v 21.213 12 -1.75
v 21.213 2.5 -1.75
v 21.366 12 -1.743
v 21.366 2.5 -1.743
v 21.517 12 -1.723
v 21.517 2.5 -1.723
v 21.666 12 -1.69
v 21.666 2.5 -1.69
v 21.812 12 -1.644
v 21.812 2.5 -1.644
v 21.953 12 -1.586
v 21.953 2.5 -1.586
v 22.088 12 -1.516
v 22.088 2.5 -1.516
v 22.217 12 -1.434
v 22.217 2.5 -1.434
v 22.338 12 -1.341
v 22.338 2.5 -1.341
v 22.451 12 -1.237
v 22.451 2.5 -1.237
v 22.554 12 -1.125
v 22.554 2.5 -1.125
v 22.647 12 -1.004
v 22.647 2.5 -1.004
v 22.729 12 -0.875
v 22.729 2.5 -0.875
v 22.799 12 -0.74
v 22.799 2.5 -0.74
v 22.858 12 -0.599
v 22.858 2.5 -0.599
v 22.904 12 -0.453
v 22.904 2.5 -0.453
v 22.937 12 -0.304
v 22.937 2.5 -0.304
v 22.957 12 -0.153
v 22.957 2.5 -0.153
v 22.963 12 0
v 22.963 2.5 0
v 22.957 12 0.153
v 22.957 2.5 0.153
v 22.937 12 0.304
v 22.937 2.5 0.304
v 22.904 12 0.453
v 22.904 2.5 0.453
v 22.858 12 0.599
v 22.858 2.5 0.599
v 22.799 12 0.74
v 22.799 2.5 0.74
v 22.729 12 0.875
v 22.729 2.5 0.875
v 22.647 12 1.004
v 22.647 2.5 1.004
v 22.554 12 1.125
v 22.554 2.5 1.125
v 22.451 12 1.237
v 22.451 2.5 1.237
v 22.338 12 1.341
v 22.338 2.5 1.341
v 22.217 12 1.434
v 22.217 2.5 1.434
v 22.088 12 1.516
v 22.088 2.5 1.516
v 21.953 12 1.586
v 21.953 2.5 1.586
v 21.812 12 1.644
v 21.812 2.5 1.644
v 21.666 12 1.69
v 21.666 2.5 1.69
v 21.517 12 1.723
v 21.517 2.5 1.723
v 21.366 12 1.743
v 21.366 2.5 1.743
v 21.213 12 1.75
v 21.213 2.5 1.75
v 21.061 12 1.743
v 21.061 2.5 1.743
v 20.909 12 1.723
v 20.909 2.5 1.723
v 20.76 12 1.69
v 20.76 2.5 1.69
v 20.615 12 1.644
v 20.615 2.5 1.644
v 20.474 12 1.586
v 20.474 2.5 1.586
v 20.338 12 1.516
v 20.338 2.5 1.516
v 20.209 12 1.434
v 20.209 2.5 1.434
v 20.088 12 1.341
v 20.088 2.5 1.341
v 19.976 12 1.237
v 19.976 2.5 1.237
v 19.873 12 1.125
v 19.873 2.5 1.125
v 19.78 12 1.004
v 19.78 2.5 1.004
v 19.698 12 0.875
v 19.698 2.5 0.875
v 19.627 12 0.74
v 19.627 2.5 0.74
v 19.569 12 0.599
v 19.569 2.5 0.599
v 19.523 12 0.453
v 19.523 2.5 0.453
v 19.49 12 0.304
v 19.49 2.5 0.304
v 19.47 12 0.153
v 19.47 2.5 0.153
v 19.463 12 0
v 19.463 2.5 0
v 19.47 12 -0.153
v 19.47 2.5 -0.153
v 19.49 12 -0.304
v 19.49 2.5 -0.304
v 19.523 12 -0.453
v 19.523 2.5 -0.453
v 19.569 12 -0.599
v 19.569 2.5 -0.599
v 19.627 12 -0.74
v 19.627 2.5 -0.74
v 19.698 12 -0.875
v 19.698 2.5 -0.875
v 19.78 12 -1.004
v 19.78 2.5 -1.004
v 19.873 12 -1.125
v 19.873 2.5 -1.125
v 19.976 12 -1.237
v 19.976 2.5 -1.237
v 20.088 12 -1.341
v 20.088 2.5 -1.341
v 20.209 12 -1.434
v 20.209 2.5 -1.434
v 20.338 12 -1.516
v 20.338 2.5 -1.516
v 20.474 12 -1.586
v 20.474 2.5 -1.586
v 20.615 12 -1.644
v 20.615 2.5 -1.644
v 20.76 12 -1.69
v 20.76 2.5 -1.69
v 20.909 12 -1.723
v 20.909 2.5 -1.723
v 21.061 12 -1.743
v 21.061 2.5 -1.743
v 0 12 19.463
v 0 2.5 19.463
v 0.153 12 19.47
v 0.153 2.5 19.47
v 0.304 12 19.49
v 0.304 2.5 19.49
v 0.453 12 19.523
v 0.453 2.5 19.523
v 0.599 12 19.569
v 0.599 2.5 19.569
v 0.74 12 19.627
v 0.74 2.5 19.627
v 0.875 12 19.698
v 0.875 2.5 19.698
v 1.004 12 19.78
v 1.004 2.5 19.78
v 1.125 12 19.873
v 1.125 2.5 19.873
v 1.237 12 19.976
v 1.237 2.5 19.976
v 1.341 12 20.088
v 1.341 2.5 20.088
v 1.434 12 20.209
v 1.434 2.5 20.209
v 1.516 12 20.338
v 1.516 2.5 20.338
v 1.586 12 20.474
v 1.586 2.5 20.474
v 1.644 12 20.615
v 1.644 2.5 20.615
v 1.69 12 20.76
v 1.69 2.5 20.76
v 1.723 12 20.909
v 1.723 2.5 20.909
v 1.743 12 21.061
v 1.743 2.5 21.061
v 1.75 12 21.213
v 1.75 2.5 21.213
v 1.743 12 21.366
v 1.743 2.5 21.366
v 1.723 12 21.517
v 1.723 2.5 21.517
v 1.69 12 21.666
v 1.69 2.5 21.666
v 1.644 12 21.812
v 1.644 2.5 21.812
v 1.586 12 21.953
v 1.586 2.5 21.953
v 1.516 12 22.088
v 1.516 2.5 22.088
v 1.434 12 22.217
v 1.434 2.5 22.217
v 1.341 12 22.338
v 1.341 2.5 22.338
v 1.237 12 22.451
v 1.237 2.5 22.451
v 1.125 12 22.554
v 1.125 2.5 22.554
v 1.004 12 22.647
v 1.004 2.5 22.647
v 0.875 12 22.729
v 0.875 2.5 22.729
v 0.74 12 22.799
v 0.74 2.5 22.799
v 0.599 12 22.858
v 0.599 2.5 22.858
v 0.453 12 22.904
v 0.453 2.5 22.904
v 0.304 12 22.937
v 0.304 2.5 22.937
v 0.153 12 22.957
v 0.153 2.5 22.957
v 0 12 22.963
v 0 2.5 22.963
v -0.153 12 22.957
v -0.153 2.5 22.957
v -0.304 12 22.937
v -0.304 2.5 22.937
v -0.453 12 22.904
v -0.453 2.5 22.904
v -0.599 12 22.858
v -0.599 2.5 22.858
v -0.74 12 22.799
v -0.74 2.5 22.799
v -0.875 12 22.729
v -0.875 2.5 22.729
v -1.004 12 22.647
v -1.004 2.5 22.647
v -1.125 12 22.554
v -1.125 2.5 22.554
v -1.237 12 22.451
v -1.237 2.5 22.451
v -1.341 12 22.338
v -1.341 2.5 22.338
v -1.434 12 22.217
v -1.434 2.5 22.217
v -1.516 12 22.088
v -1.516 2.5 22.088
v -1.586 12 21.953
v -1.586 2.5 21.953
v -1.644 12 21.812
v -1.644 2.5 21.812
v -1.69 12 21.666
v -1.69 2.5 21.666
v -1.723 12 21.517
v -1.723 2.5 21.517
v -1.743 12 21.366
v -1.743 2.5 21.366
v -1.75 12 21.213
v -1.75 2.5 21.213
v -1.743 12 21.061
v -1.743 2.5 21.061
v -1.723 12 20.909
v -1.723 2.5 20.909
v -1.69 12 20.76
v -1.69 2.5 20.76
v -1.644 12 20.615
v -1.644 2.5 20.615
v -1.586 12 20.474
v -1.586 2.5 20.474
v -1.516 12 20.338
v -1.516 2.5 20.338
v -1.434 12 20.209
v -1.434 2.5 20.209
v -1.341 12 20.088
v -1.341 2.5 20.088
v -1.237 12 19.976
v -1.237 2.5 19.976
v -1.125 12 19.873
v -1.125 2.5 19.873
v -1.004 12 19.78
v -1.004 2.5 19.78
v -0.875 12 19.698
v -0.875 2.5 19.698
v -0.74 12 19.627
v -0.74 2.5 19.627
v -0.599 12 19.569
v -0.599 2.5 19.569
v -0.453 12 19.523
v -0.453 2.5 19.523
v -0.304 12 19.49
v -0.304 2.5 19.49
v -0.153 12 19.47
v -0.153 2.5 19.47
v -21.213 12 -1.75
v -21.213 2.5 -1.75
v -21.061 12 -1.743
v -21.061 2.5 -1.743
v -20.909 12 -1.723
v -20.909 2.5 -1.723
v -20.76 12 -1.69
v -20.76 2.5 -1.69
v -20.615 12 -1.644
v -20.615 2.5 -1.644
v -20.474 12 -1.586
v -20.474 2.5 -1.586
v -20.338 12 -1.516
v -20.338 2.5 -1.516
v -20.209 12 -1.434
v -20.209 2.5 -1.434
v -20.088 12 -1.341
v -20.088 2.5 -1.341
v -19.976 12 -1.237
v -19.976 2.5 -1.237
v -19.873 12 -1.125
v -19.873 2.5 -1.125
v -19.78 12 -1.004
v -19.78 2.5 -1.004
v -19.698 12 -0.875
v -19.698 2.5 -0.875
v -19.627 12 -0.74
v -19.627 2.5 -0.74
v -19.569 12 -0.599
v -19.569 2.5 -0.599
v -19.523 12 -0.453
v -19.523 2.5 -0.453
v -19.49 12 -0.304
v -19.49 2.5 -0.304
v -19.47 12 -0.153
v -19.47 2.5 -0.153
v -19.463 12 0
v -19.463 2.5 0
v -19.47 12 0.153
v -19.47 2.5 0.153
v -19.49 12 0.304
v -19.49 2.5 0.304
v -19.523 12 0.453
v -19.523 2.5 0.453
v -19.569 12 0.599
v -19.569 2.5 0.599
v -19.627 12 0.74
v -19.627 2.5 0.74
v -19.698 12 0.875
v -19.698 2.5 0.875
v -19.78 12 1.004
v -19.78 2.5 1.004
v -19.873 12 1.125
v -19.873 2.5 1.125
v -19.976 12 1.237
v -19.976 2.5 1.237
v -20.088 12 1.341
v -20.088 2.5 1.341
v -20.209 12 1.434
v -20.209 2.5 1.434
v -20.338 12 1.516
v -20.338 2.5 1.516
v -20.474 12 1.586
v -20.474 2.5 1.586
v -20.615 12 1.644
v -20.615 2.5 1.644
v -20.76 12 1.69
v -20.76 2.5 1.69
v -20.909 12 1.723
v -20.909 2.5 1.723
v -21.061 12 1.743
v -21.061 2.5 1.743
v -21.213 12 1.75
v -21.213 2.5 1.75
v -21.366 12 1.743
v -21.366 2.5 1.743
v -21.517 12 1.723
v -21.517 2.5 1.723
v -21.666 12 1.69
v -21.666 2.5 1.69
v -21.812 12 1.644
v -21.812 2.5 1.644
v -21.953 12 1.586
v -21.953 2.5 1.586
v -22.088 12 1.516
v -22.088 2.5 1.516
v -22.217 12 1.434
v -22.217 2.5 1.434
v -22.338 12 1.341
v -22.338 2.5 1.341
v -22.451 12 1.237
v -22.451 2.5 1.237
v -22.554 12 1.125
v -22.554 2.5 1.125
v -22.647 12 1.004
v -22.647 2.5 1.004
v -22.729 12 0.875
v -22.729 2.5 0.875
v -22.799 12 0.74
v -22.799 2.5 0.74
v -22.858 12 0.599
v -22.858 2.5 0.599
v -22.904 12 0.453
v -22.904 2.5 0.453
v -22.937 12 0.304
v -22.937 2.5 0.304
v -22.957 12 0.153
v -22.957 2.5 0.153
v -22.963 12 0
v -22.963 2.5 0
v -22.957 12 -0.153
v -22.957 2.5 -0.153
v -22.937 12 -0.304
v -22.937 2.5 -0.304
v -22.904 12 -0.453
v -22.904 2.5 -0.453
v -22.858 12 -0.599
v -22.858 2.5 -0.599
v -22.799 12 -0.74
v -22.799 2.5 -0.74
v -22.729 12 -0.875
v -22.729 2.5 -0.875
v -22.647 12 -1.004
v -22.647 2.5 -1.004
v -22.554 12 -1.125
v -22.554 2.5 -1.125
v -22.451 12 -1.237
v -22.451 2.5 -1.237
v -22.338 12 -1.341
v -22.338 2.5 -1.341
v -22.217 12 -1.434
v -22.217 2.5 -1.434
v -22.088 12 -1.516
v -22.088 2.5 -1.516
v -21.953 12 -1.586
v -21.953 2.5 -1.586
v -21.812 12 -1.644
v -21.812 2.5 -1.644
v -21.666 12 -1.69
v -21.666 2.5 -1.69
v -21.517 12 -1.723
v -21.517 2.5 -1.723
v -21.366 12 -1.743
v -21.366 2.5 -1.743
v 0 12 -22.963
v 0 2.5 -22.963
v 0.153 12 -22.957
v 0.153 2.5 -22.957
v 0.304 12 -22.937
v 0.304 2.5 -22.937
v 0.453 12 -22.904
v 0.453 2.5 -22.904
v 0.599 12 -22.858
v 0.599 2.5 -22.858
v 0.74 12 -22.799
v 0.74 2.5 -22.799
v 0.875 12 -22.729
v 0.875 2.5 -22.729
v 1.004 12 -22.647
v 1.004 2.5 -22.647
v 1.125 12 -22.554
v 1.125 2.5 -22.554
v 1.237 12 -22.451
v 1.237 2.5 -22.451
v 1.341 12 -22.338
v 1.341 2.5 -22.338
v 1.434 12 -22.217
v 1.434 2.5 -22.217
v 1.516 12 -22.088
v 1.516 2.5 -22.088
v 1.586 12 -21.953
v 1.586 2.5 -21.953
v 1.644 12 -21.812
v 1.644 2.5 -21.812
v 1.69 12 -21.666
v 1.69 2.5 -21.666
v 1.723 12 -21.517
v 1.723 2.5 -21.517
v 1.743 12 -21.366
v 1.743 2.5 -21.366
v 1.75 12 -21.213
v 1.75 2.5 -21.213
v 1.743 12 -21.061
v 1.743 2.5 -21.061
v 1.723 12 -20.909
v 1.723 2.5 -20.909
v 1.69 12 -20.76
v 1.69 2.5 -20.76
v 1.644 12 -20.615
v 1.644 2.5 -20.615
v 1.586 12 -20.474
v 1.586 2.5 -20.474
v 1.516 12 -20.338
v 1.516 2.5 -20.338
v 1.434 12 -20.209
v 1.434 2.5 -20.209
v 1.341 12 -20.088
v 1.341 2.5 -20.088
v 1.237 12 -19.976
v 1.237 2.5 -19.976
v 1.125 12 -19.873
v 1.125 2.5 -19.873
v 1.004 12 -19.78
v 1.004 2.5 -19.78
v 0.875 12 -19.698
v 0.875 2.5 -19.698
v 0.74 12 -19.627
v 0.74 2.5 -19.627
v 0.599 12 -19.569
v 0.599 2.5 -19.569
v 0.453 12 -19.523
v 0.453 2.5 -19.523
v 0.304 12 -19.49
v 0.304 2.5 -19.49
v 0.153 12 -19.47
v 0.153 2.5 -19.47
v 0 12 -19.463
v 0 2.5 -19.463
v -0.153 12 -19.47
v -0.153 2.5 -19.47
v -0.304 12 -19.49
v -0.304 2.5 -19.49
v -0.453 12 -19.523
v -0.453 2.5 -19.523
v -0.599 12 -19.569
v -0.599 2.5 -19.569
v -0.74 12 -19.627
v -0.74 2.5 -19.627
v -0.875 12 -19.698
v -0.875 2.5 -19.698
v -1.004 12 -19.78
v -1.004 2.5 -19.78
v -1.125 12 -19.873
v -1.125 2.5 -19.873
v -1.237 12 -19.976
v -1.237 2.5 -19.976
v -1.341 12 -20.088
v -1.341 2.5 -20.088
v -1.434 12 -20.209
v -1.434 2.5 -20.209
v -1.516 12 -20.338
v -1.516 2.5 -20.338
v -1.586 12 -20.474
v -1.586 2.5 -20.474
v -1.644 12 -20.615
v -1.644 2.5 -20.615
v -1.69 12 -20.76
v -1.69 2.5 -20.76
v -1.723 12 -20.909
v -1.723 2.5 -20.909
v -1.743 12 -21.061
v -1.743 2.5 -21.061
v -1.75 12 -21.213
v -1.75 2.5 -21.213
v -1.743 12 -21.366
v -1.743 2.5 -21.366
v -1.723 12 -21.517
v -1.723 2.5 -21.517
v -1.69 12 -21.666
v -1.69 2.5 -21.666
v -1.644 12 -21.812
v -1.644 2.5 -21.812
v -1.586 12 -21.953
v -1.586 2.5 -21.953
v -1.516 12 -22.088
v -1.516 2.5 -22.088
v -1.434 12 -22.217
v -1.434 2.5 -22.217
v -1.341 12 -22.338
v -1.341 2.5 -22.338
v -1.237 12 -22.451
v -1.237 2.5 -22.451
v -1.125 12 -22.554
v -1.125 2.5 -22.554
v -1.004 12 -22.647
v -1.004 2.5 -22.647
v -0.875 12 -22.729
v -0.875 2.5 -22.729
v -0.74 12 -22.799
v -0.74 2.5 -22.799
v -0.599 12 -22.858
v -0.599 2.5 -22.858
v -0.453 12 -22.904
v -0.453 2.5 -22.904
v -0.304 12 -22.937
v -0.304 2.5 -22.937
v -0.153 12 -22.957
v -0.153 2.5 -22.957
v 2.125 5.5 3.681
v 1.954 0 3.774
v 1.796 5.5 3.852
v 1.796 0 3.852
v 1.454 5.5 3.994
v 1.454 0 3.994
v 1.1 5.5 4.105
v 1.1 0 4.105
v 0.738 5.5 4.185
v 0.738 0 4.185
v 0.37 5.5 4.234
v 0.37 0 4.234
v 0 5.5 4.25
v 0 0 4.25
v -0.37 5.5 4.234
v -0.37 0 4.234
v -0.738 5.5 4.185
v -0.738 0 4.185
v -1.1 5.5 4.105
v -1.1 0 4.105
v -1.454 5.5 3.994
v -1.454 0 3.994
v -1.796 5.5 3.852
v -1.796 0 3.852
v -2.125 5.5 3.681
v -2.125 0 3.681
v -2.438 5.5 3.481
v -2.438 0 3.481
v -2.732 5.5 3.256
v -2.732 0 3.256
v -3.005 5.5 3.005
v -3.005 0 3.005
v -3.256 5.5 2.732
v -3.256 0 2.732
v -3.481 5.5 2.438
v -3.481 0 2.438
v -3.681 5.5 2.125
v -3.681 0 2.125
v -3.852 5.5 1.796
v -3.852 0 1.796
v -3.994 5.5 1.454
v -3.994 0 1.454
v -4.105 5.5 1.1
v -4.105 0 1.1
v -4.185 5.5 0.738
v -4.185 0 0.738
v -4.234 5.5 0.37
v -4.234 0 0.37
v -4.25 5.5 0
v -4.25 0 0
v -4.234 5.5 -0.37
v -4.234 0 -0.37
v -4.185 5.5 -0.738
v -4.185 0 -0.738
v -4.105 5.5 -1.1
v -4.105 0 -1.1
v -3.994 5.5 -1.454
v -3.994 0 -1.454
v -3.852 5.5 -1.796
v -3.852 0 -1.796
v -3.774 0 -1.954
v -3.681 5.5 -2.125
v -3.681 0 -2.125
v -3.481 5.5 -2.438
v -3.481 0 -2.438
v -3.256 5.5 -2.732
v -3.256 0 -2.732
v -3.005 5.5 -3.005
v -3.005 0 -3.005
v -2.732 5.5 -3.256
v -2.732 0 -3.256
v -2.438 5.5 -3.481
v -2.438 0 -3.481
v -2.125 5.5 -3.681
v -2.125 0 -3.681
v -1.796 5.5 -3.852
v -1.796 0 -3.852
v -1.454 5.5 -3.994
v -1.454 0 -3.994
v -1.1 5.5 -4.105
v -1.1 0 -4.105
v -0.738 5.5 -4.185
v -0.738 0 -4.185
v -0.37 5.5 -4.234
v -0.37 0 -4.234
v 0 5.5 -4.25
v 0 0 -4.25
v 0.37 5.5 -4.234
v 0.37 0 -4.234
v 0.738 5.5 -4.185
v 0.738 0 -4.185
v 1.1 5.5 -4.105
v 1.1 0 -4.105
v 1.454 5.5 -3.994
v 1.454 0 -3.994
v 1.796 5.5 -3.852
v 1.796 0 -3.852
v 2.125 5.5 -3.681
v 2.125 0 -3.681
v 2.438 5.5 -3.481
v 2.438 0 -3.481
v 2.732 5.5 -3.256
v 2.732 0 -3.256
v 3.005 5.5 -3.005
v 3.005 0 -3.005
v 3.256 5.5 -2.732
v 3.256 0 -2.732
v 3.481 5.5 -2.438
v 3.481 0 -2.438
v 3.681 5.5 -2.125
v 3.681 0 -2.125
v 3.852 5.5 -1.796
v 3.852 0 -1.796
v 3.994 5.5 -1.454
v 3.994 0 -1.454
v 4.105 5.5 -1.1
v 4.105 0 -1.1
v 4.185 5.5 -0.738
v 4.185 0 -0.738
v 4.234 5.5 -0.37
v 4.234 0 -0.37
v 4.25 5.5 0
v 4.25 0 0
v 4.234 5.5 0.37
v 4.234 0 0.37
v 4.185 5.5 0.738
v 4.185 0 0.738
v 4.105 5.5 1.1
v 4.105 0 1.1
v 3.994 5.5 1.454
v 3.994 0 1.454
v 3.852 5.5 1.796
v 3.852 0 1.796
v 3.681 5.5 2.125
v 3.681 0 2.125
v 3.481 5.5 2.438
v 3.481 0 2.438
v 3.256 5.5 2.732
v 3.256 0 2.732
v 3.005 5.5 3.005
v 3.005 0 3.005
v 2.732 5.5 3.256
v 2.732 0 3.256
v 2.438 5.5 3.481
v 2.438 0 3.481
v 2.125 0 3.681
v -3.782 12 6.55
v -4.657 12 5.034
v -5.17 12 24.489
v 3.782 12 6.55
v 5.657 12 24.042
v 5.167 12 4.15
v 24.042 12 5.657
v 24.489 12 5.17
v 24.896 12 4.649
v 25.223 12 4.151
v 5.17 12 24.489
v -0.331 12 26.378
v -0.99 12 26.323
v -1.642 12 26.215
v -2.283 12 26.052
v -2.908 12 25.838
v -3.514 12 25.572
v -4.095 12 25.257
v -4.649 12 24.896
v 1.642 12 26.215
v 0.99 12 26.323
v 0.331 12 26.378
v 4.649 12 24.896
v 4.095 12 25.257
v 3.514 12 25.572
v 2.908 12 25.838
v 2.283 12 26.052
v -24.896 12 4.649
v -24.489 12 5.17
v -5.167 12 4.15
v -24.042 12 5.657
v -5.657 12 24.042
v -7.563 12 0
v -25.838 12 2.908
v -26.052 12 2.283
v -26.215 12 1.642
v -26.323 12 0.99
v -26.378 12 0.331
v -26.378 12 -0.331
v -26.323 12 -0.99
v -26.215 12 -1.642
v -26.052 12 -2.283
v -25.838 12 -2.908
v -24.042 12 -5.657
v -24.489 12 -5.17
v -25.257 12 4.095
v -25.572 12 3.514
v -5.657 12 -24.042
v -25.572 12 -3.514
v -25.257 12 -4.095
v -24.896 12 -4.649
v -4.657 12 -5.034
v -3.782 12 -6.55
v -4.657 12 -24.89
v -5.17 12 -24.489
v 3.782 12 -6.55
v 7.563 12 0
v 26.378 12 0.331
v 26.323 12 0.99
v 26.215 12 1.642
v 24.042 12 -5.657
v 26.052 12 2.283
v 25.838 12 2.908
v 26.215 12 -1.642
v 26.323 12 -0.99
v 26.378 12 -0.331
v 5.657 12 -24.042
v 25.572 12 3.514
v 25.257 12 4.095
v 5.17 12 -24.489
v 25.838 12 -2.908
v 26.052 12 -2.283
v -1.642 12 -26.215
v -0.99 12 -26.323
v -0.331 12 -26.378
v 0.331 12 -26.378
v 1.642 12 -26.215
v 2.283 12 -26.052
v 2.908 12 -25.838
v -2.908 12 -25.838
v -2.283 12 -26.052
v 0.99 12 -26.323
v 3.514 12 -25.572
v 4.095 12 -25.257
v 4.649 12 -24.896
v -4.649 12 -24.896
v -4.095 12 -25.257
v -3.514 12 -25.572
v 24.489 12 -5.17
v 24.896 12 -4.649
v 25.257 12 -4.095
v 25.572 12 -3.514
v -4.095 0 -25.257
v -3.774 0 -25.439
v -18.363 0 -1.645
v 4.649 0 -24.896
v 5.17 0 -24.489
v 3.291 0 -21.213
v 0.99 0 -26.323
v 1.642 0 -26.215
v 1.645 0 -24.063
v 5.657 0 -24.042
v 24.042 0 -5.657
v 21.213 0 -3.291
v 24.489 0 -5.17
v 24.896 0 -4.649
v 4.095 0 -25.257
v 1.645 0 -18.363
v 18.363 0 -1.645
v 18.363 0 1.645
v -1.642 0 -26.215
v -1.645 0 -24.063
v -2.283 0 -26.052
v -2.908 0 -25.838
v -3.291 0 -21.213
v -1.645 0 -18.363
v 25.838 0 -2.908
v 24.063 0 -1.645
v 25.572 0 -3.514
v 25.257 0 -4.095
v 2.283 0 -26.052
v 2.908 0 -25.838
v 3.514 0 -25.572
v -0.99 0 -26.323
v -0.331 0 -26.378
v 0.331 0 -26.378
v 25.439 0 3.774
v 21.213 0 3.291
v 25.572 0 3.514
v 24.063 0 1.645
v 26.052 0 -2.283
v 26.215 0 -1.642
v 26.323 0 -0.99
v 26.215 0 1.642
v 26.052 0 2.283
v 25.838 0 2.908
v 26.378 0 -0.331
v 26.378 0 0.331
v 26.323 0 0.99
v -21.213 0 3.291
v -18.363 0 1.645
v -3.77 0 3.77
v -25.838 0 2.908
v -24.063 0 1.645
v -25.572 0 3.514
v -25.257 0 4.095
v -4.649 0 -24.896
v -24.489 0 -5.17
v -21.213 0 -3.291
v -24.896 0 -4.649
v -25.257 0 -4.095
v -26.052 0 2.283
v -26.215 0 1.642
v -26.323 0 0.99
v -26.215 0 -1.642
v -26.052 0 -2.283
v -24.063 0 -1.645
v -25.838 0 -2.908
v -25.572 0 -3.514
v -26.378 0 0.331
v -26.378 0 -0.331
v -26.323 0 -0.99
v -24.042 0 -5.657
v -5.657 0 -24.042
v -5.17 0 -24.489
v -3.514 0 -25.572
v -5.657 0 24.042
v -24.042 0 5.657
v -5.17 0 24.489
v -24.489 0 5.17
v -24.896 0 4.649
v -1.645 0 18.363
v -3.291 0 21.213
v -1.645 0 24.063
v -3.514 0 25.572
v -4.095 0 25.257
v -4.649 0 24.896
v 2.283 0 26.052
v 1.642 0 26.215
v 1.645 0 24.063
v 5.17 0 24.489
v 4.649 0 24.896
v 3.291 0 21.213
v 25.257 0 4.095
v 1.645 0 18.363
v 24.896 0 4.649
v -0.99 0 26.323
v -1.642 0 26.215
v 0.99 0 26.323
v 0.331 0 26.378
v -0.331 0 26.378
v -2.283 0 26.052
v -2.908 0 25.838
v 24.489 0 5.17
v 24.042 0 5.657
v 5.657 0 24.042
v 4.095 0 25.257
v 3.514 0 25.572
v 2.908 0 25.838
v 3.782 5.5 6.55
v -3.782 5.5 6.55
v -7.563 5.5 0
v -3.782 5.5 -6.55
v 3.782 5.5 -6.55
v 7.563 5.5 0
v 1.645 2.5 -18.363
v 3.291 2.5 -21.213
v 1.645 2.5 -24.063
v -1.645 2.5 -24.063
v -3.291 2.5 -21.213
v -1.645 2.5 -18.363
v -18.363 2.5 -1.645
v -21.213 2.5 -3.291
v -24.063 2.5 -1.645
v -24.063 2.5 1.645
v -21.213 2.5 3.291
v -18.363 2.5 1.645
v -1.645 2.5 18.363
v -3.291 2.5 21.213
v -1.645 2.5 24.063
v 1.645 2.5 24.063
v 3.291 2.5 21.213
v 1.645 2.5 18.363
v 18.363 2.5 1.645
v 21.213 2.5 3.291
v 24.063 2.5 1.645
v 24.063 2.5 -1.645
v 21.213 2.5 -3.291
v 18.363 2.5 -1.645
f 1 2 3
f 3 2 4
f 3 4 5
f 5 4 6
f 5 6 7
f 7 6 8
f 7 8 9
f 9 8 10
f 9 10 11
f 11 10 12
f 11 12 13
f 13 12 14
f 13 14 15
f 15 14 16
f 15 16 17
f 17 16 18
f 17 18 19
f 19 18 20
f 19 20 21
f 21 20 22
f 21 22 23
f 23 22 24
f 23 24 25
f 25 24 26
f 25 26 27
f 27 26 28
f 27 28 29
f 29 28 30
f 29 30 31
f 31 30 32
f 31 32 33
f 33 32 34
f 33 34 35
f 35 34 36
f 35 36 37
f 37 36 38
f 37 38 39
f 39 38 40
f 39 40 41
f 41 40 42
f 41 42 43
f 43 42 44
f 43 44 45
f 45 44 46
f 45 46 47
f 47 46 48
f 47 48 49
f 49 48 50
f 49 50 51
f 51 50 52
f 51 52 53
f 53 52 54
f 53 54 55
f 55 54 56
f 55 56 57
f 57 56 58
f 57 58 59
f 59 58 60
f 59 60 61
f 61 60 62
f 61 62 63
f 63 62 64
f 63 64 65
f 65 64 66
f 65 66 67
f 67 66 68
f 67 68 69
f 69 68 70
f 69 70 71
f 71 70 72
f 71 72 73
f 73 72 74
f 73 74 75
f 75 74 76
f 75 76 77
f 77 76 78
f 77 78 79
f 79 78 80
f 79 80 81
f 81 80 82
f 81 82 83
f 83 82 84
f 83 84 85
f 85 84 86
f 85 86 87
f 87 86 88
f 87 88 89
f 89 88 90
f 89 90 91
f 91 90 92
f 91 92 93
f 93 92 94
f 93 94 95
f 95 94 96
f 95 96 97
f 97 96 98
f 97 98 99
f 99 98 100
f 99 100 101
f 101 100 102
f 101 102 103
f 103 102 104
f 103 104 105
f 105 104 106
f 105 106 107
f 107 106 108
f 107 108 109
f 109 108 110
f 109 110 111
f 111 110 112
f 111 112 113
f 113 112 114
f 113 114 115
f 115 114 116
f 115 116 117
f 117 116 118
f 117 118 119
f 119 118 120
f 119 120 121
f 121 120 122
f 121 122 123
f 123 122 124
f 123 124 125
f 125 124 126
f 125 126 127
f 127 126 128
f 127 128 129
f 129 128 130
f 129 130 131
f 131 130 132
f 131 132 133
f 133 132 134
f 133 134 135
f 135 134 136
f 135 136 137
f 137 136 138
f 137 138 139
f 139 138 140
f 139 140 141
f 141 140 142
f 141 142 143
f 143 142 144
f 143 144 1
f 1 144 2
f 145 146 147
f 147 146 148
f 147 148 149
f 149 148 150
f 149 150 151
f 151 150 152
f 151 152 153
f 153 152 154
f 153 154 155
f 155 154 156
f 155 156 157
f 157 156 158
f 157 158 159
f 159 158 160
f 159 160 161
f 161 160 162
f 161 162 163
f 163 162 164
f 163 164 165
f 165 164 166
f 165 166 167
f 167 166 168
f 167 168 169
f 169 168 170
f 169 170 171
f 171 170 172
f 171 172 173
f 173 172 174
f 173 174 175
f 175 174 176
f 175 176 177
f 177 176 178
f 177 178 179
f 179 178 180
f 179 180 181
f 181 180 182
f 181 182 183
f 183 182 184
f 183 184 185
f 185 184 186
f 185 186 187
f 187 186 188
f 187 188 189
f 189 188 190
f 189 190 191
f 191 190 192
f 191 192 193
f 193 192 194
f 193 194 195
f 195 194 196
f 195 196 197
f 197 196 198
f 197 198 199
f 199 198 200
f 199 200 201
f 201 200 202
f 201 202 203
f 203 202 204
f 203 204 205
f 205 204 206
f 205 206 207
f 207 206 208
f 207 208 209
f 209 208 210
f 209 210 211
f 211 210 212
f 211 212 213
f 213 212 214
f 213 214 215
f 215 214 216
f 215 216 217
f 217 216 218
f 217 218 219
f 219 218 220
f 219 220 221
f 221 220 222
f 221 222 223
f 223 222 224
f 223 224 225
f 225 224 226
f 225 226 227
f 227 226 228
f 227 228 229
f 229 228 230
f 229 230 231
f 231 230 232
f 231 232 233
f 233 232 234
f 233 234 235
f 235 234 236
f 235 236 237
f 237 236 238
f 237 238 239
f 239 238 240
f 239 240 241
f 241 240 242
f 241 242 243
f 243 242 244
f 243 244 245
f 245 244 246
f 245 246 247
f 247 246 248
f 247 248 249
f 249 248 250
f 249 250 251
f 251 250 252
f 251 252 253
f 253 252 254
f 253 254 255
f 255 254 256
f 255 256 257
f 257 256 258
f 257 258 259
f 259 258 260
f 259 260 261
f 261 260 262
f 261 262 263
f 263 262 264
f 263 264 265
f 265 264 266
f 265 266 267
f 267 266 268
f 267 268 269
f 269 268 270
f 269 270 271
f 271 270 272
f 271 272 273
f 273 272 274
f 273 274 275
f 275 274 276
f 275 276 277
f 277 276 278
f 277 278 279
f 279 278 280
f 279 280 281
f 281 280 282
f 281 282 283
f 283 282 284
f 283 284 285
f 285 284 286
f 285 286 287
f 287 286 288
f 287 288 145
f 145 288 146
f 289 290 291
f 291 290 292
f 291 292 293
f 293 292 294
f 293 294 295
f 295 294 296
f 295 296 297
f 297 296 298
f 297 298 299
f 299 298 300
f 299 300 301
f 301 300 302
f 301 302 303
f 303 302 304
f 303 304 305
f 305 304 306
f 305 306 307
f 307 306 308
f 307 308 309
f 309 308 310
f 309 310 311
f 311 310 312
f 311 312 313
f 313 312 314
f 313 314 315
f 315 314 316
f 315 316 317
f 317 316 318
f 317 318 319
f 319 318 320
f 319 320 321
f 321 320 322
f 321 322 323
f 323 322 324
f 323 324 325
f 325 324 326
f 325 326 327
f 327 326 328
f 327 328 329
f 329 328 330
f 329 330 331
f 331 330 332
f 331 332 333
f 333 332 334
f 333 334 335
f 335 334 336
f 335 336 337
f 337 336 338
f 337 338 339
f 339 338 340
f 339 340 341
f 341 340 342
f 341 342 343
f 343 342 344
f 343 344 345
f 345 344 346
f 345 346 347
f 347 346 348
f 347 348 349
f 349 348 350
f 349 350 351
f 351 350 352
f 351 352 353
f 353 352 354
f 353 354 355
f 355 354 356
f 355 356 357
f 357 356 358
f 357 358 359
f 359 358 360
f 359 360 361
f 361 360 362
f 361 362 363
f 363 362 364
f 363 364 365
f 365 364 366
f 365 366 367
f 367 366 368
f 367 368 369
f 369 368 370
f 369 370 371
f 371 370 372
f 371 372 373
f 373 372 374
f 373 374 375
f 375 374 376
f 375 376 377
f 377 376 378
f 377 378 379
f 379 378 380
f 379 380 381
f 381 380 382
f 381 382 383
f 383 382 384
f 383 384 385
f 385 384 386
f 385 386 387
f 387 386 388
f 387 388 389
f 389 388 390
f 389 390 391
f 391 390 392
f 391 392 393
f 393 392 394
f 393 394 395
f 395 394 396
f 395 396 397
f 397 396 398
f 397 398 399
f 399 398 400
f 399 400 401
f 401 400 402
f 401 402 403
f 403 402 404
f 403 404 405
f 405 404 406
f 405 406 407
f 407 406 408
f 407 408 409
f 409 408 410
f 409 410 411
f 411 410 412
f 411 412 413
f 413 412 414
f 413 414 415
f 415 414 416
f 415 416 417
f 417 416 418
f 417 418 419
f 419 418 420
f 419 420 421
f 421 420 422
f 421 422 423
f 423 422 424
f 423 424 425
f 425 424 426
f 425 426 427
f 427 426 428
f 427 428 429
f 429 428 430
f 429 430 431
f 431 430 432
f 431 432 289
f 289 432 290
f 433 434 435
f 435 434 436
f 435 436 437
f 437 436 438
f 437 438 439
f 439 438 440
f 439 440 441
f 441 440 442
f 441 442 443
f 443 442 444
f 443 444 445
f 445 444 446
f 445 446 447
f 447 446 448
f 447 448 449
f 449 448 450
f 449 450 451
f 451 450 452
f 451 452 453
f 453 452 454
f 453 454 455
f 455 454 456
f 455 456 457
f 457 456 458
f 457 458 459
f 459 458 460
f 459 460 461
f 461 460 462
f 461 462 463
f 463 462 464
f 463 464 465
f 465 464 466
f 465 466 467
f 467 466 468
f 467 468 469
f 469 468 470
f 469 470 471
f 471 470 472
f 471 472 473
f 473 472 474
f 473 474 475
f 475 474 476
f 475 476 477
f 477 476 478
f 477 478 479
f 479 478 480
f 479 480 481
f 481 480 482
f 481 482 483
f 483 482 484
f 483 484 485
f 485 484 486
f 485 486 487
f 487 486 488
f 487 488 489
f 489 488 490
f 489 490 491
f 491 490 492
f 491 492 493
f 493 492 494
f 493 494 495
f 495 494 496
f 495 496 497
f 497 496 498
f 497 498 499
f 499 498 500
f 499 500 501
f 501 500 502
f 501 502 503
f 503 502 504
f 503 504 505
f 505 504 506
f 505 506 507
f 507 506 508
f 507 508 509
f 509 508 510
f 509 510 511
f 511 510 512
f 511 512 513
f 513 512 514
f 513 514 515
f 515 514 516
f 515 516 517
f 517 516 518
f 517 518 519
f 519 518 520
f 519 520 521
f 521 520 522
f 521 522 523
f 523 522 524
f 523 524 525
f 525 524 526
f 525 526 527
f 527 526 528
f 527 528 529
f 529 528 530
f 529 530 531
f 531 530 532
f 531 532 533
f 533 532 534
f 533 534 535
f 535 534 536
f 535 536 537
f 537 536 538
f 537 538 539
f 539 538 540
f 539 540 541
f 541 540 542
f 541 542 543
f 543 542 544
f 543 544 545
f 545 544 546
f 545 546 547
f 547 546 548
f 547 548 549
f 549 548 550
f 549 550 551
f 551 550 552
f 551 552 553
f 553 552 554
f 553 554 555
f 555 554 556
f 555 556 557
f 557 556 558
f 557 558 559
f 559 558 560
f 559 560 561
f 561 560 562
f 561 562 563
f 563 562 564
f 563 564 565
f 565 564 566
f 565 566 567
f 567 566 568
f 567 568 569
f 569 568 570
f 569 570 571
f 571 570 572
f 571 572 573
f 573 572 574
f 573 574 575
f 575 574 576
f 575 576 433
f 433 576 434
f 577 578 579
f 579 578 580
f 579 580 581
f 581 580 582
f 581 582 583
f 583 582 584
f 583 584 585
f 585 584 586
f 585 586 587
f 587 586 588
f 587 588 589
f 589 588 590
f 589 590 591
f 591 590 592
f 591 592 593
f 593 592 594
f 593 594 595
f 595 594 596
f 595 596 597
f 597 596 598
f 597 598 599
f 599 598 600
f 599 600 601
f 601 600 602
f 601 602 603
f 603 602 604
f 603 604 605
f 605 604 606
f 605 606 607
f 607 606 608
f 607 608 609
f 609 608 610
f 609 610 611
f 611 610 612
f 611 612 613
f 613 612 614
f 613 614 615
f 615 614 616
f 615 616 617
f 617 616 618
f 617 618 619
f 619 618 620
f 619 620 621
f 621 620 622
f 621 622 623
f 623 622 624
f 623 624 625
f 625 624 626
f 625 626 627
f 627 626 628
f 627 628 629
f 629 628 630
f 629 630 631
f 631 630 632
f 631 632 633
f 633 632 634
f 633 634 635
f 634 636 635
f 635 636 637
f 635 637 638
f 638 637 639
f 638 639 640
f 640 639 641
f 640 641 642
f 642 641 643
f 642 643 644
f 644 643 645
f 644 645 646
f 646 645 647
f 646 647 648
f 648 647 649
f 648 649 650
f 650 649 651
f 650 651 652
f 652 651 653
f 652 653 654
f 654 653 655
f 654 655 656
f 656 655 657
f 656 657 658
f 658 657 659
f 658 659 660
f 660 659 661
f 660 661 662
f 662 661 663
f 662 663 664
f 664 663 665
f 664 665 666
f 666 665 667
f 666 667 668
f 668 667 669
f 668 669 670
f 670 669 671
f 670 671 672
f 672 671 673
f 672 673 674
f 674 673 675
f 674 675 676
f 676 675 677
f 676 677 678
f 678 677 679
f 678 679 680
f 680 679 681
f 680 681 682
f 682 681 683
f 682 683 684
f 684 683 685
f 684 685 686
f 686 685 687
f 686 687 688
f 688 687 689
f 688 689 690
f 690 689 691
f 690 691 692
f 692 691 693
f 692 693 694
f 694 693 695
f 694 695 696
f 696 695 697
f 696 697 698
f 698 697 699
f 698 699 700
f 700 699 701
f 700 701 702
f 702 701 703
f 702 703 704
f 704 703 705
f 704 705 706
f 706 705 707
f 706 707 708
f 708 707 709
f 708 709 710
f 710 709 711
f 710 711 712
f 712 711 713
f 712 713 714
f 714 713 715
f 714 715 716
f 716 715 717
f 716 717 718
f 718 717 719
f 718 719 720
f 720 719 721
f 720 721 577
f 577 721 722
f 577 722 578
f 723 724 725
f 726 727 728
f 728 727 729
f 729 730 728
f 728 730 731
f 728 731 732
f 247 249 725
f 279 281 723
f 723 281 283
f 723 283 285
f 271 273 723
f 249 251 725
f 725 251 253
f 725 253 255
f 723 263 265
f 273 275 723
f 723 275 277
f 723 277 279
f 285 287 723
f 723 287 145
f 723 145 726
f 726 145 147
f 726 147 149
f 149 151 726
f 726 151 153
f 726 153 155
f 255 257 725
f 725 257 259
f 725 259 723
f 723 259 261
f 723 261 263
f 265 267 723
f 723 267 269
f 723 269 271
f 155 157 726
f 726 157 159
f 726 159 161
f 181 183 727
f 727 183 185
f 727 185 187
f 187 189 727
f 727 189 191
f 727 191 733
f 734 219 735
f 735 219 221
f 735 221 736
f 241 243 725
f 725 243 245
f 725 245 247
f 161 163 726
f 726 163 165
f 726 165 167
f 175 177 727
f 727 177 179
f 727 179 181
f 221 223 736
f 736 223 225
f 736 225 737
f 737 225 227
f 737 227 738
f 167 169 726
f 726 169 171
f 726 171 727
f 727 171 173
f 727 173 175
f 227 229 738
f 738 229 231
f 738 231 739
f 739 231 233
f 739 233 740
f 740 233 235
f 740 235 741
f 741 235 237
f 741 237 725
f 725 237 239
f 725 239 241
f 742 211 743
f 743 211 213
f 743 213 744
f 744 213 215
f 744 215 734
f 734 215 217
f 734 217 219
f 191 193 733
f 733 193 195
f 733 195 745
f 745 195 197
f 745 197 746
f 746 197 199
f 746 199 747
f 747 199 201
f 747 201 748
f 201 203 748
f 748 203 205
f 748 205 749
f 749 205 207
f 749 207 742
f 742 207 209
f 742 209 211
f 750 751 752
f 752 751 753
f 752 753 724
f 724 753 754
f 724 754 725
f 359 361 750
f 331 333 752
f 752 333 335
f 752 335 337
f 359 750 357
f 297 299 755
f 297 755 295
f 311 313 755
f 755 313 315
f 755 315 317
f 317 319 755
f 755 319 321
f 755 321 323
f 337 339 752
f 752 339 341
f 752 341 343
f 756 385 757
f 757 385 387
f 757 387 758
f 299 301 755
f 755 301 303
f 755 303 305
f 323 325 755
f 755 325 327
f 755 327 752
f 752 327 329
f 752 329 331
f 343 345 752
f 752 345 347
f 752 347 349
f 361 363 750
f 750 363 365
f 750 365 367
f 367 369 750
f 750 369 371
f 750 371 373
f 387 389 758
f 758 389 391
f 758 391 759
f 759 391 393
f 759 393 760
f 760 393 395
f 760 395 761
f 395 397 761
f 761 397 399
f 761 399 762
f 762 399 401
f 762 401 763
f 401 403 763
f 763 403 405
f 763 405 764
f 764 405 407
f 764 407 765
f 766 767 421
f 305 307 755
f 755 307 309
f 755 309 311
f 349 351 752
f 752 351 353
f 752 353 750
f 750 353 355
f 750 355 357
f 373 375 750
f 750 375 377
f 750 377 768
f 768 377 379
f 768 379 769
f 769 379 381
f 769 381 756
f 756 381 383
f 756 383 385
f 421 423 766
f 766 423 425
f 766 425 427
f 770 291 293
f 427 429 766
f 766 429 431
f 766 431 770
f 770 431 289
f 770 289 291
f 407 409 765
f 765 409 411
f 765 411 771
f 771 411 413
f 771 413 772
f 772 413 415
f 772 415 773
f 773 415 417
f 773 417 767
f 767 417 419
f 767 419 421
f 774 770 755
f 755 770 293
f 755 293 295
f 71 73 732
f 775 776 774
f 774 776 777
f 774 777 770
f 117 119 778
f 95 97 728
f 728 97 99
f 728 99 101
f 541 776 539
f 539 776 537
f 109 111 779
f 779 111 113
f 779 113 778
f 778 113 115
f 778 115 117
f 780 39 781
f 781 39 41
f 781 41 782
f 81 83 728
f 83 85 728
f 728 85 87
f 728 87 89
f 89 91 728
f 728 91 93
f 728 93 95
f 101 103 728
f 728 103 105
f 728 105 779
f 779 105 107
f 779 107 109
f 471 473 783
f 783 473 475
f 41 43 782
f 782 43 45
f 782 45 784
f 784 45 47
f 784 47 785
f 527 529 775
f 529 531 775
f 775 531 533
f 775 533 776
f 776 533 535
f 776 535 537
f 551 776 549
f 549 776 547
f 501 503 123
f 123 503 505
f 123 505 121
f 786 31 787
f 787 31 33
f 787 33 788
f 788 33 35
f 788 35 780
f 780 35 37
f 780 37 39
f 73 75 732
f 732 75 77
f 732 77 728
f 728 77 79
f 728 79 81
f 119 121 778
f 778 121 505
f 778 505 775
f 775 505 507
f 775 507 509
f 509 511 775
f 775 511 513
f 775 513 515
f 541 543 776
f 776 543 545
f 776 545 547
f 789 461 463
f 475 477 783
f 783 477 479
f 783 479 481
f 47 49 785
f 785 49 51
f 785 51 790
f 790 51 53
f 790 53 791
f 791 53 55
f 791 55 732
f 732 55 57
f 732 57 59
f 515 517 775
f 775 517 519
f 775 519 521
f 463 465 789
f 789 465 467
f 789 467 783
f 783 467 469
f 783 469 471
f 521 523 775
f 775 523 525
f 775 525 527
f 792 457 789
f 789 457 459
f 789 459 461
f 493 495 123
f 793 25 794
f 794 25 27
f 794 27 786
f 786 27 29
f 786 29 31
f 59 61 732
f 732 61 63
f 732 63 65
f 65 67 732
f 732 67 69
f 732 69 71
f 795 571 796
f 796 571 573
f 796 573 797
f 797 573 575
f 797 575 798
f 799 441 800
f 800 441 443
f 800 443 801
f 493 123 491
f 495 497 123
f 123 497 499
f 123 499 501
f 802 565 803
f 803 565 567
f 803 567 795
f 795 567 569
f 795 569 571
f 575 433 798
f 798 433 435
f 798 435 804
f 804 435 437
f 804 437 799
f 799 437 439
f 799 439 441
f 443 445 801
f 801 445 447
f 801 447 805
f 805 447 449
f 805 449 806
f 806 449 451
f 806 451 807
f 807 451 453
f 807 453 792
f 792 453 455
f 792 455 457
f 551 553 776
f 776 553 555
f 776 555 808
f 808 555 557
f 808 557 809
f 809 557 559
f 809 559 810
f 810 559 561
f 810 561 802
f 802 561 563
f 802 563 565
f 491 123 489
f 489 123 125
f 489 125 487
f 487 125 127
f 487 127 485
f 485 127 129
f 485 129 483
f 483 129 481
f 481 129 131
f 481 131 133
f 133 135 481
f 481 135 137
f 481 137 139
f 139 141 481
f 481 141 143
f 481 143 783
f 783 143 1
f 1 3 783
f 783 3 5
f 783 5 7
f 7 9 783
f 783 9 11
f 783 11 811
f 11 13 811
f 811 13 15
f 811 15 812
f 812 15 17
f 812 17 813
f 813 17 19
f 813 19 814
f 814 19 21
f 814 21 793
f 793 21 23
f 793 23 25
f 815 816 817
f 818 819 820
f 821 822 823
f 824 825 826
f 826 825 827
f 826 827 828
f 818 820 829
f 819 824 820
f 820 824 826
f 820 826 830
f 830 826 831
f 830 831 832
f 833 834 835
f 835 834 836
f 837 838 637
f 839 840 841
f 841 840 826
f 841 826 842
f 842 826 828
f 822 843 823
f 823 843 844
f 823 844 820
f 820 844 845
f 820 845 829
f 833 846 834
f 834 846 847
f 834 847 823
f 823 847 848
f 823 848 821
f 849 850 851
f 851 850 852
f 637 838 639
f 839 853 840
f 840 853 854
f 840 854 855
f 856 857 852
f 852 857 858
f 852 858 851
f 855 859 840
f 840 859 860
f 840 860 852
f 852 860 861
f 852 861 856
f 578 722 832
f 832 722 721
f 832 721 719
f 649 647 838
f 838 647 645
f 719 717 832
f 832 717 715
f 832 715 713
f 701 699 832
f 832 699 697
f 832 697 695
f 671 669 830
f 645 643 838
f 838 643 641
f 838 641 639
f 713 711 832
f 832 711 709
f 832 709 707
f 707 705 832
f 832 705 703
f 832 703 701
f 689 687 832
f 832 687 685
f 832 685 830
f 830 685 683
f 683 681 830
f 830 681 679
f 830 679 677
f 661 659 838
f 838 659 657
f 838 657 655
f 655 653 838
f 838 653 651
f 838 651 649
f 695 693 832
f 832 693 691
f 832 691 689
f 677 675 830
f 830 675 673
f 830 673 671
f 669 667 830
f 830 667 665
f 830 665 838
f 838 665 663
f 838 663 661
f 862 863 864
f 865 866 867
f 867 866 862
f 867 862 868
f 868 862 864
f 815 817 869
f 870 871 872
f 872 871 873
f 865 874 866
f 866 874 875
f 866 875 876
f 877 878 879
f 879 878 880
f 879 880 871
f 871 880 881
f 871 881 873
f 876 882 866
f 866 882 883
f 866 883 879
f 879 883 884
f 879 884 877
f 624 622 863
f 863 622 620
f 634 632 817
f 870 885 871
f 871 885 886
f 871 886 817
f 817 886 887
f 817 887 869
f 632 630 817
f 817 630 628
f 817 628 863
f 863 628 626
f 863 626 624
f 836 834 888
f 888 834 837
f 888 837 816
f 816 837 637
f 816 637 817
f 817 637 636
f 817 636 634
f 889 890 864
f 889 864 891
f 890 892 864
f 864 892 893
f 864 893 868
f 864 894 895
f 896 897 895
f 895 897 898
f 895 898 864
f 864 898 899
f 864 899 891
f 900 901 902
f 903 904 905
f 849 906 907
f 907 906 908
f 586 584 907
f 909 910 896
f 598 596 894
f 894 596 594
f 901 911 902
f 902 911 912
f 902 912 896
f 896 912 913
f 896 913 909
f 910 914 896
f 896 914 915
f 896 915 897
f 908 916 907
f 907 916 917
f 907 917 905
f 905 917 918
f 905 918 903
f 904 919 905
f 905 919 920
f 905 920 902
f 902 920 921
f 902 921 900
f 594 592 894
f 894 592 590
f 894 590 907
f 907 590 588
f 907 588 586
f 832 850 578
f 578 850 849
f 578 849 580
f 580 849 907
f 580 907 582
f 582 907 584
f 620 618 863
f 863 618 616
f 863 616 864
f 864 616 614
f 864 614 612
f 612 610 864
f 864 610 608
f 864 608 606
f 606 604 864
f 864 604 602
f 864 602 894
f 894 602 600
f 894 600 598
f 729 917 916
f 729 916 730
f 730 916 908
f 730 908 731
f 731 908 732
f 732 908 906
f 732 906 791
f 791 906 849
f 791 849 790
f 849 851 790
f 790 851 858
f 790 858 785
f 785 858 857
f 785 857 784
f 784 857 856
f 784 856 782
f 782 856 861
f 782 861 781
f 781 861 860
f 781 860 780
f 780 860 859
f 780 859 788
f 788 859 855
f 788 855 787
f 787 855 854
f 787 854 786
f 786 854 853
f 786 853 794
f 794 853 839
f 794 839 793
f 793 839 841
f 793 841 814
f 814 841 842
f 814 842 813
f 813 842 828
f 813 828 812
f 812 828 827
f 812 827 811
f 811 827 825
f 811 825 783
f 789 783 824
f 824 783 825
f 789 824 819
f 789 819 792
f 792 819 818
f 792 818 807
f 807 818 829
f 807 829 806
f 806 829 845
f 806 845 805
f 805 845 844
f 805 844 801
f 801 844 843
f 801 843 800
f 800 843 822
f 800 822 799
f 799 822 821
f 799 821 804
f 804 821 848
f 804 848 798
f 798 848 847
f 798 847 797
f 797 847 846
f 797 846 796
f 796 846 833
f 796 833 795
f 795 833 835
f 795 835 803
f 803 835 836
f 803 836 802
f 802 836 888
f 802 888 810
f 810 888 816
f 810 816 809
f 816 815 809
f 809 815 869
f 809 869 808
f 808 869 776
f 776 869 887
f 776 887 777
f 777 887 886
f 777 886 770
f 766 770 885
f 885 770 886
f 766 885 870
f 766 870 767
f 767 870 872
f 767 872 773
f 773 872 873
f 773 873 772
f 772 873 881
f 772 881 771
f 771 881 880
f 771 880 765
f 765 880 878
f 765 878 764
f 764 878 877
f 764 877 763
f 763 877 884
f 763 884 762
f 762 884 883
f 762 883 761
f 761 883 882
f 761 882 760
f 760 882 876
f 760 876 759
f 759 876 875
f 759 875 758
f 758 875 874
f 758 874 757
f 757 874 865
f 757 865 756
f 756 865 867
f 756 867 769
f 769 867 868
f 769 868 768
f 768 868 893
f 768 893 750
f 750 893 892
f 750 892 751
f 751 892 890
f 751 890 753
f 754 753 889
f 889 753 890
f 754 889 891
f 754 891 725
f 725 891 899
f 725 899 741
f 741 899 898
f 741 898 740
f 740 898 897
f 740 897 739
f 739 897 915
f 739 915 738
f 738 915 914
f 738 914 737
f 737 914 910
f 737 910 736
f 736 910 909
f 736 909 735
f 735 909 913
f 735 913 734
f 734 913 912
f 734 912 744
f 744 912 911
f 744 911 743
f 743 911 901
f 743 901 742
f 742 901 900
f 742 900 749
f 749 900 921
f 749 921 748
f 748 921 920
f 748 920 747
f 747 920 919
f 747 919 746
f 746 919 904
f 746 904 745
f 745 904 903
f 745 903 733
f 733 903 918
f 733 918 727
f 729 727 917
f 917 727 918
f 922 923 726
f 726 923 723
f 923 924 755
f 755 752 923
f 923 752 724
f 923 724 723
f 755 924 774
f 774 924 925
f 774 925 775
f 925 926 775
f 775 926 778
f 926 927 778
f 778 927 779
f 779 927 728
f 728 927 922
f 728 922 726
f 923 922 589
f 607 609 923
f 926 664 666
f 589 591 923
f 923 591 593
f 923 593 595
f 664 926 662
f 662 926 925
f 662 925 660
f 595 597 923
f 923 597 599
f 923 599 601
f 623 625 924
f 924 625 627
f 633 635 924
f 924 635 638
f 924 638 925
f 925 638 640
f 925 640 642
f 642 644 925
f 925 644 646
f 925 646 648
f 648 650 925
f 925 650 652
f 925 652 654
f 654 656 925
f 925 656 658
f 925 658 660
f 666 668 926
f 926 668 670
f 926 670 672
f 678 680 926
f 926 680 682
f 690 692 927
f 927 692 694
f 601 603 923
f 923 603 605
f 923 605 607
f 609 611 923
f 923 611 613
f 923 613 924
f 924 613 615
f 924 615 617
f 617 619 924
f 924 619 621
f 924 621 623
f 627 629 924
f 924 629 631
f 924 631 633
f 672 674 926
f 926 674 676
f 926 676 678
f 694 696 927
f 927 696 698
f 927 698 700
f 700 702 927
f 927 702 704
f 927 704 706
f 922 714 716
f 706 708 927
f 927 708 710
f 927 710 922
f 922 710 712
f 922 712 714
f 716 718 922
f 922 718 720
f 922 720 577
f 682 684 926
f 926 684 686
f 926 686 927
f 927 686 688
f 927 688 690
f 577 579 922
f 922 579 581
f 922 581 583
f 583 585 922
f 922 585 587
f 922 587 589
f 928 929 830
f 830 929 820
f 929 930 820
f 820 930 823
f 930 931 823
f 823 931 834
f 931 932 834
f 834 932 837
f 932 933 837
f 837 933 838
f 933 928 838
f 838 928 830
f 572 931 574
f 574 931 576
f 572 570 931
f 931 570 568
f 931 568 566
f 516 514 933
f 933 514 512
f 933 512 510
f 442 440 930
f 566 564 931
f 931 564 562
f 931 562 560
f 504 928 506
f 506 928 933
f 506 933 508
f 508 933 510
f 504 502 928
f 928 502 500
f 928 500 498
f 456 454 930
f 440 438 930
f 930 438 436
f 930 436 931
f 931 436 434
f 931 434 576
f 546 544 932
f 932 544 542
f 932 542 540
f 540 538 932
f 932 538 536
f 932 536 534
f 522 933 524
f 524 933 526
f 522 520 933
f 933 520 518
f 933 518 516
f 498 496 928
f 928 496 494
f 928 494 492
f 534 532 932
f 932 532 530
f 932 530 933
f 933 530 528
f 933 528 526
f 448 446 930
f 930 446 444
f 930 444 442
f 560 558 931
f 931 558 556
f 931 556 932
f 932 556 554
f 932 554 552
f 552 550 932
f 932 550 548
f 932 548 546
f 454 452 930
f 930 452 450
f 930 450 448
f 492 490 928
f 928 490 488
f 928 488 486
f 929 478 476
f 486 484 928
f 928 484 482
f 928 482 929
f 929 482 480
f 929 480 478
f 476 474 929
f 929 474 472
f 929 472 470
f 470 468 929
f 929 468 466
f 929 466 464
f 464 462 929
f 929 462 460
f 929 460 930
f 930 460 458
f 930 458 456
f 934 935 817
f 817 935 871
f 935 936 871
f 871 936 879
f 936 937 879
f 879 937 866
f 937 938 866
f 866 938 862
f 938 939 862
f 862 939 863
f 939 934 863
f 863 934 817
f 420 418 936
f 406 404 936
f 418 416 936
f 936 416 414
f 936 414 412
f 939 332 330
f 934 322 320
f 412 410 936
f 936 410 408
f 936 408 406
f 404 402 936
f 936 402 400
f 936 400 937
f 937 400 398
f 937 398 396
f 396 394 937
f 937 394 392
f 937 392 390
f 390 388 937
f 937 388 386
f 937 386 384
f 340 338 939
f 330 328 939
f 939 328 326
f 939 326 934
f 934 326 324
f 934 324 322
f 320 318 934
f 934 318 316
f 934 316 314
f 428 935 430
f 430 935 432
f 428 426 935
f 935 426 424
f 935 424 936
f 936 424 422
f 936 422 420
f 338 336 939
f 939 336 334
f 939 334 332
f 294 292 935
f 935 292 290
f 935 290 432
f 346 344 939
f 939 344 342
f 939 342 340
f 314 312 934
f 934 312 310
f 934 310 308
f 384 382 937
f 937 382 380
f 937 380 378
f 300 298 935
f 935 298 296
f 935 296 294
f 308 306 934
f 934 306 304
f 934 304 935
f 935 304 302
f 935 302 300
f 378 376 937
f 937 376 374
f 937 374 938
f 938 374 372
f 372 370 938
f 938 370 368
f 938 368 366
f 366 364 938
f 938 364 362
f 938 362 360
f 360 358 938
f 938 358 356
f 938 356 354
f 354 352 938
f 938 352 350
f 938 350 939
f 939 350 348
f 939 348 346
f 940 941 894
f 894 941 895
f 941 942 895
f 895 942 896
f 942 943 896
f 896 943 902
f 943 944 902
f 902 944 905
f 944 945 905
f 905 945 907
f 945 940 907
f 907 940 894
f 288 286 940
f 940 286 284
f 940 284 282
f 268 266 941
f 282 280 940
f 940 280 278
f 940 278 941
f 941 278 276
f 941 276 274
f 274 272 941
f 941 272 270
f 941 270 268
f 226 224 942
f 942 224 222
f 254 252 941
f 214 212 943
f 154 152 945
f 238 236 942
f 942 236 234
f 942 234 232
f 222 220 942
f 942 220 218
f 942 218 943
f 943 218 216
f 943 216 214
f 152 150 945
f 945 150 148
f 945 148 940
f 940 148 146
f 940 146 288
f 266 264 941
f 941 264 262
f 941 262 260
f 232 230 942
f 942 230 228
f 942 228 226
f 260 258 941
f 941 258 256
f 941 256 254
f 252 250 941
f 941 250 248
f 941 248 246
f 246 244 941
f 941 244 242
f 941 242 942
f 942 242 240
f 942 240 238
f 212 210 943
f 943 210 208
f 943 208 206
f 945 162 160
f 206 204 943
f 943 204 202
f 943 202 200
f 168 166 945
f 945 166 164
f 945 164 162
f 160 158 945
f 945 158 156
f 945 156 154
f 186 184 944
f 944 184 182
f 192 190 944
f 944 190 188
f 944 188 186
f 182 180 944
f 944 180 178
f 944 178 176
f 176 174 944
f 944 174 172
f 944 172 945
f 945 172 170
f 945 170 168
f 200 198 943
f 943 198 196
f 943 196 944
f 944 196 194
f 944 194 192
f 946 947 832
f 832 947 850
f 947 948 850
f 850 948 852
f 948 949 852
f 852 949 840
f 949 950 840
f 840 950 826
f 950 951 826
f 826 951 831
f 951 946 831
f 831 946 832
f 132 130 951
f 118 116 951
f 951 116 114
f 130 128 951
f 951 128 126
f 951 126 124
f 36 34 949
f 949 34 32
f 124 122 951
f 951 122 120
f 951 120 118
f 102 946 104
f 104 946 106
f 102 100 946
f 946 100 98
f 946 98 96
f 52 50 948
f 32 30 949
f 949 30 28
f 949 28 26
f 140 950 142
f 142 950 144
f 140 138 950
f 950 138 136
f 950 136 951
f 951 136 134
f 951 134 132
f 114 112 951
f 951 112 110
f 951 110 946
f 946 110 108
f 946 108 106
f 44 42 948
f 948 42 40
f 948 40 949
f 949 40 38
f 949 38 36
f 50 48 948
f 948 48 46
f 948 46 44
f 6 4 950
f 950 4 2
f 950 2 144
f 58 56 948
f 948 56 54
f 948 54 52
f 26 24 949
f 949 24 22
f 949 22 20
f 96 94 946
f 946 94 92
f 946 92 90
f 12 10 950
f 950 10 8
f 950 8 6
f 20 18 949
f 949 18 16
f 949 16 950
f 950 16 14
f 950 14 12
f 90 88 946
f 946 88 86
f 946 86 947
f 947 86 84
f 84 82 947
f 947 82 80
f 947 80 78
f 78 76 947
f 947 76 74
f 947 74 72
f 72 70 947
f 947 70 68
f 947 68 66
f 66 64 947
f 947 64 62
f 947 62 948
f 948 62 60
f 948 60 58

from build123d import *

# Parameters (mm, degrees)
SKETCH_1_R          = 1.75
SKETCH_1_R_2        = 4.25
EXTRUDE_1_DEPTH     = 12
CUT_EXTRUDE_1_DEPTH = 6.5
CUT_EXTRUDE_2_DEPTH = 2.5


with BuildPart() as part:
    # Эскиз1 → Бобышка-Вытянуть1 (new body)
    with BuildSketch(Plane(origin=(0, 0, 0), x_dir=(1, 0, 0), z_dir=(0, 1, 0))):
        with BuildLine():
            Line((5.656854249, -24.04163056), (24.04163056, -5.656854249))
            ThreePointArc((24.04163056, -5.656854249), (26.384776311, 0), (24.04163056, 5.656854249))
            Line((24.04163056, 5.656854249), (5.656854249, 24.04163056))
            ThreePointArc((5.656854249, 24.04163056), (0, 26.384776311), (-5.656854249, 24.04163056))
            Line((-5.656854249, 24.04163056), (-24.04163056, 5.656854249))
            ThreePointArc((-24.04163056, 5.656854249), (-26.384776311, 0), (-24.04163056, -5.656854249))
            Line((-24.04163056, -5.656854249), (-5.656854249, -24.04163056))
            ThreePointArc((-5.656854249, -24.04163056), (0, -26.384776311), (5.656854249, -24.04163056))
        make_face()
        with Locations(Location((21.213203436, 0, 0), (0, 0, 270))):
            Circle(SKETCH_1_R, mode=Mode.SUBTRACT)
        with Locations(Location((0, -21.213203436, 0), (0, 0, 270))):
            Circle(SKETCH_1_R, mode=Mode.SUBTRACT)
        with Locations(Location((-21.213203436, 0, 0), (0, 0, 270))):
            Circle(SKETCH_1_R, mode=Mode.SUBTRACT)
        with Locations(Location((0, 21.213203436, 0), (0, 0, 270))):
            Circle(SKETCH_1_R, mode=Mode.SUBTRACT)
        with Locations(Location((0, 0, 0), (0, 0, 270))):
            Circle(SKETCH_1_R_2, mode=Mode.SUBTRACT)
    extrude(amount=EXTRUDE_1_DEPTH)

    # Эскиз2 → Вырез-Вытянуть1 (cut)
    with BuildSketch(Plane(origin=(0, 12, 0), x_dir=(1, 0, 0), z_dir=(0, 1, 0))):
        Polygon((3.781644263, -6.55), (7.563288526, 0), (3.781644263, 6.55), (-3.781644263, 6.55), (-7.563288526, 0), (-3.781644263, -6.55), align=None)
    extrude(amount=-CUT_EXTRUDE_1_DEPTH, mode=Mode.SUBTRACT)

    # Эскиз4 → Вырез-Вытянуть2 (cut)
    with BuildSketch(Plane.XZ):
        Polygon((24.063203436, -1.645448267), (24.063203436, 1.645448267), (21.213203436, 3.290896534), (18.363203436, 1.645448267), (18.363203436, -1.645448267), (21.213203436, -3.290896534), align=None)
        Polygon((-1.645448267, 18.363203436), (1.645448267, 18.363203436), (3.290896534, 21.213203436), (1.645448267, 24.063203436), (-1.645448267, 24.063203436), (-3.290896534, 21.213203436), align=None)
        Polygon((-1.645448267, -24.063203436), (1.645448267, -24.063203436), (3.290896534, -21.213203436), (1.645448267, -18.363203436), (-1.645448267, -18.363203436), (-3.290896534, -21.213203436), align=None)
        Polygon((-24.063203436, 1.645448267), (-24.063203436, -1.645448267), (-21.213203436, -3.290896534), (-18.363203436, -1.645448267), (-18.363203436, 1.645448267), (-21.213203436, 3.290896534), align=None)
    extrude(amount=-CUT_EXTRUDE_2_DEPTH, mode=Mode.SUBTRACT)


solid = part.part
